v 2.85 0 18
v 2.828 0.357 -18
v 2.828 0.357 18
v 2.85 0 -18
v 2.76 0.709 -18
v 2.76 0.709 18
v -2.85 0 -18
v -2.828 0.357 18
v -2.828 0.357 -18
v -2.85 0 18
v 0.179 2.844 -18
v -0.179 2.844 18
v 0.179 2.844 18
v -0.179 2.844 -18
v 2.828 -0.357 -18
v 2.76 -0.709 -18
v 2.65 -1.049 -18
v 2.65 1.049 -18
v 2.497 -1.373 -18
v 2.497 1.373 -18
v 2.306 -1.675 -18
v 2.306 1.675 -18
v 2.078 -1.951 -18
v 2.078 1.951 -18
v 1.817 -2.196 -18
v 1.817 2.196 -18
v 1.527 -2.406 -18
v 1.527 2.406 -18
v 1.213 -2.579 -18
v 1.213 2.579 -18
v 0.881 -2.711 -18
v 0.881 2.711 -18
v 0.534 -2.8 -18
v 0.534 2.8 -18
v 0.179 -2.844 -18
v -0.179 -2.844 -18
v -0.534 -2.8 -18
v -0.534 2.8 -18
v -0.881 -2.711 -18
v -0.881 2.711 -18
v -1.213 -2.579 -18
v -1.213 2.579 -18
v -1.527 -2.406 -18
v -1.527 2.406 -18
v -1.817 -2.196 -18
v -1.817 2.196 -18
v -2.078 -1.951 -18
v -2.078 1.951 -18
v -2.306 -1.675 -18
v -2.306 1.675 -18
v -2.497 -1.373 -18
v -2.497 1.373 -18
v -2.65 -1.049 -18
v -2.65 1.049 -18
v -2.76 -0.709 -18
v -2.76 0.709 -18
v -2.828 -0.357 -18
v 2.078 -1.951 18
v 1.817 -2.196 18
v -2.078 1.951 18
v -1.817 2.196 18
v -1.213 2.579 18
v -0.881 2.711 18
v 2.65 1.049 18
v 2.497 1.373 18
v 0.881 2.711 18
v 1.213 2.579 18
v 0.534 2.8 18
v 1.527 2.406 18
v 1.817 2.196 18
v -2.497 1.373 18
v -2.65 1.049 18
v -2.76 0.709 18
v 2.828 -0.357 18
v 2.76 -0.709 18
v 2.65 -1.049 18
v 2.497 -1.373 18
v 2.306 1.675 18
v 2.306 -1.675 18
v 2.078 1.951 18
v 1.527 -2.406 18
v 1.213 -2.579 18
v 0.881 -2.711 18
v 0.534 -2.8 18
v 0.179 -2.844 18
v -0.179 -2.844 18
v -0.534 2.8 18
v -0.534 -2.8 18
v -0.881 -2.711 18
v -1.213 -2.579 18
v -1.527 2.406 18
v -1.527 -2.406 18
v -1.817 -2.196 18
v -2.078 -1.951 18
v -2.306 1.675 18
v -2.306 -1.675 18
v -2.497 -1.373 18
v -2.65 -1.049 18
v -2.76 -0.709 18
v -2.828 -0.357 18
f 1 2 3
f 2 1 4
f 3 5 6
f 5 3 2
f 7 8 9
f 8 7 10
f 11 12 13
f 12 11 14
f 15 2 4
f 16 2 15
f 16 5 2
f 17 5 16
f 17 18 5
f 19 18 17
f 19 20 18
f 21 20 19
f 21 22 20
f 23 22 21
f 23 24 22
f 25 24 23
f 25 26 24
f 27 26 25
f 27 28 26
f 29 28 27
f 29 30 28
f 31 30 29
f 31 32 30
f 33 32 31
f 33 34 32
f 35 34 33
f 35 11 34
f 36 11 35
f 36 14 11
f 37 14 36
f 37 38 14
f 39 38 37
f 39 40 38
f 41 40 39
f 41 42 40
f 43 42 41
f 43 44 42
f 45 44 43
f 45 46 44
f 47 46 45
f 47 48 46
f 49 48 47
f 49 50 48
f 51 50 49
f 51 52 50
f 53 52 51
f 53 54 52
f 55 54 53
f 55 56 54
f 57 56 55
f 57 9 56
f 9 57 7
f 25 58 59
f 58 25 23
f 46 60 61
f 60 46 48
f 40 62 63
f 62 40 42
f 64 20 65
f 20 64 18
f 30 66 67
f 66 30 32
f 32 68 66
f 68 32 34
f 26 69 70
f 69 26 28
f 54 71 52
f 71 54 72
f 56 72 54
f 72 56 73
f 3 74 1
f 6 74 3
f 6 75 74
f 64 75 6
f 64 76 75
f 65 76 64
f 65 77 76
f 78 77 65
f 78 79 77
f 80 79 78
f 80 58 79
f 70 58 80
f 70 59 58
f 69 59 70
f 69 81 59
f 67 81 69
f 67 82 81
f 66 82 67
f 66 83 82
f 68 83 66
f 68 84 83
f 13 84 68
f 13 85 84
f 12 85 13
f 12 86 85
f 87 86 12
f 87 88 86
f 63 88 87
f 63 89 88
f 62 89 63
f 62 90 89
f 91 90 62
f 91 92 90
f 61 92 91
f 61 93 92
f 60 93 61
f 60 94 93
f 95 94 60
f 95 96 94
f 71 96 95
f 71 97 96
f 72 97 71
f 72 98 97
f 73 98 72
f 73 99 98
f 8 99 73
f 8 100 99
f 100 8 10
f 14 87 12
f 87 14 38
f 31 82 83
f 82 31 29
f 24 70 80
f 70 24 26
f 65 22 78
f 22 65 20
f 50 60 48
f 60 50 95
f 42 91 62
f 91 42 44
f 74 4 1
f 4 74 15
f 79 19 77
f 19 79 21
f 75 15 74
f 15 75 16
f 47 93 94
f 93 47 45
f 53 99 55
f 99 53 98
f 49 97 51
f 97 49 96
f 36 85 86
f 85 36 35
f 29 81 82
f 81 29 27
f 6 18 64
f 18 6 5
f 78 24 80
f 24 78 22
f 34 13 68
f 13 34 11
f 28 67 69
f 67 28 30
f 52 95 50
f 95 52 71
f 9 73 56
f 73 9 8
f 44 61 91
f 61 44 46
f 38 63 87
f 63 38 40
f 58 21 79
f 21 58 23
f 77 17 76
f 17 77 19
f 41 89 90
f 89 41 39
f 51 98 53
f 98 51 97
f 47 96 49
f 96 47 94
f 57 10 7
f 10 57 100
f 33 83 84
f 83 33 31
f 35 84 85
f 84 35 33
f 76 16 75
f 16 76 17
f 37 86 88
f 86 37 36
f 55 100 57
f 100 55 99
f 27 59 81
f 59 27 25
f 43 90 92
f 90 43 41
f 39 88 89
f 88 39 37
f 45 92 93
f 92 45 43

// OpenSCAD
$fn = 50;


difference() {
	union() {
		translate(v = [0, 0, -18.0000000000]) {
			cylinder(h = 36, r = 2.8500000000);
		}
	}
	union() {
		translate(v = [0, 0, -100.0000000000]) {
			cylinder(h = 200, r = 0);
		}
	}
}
